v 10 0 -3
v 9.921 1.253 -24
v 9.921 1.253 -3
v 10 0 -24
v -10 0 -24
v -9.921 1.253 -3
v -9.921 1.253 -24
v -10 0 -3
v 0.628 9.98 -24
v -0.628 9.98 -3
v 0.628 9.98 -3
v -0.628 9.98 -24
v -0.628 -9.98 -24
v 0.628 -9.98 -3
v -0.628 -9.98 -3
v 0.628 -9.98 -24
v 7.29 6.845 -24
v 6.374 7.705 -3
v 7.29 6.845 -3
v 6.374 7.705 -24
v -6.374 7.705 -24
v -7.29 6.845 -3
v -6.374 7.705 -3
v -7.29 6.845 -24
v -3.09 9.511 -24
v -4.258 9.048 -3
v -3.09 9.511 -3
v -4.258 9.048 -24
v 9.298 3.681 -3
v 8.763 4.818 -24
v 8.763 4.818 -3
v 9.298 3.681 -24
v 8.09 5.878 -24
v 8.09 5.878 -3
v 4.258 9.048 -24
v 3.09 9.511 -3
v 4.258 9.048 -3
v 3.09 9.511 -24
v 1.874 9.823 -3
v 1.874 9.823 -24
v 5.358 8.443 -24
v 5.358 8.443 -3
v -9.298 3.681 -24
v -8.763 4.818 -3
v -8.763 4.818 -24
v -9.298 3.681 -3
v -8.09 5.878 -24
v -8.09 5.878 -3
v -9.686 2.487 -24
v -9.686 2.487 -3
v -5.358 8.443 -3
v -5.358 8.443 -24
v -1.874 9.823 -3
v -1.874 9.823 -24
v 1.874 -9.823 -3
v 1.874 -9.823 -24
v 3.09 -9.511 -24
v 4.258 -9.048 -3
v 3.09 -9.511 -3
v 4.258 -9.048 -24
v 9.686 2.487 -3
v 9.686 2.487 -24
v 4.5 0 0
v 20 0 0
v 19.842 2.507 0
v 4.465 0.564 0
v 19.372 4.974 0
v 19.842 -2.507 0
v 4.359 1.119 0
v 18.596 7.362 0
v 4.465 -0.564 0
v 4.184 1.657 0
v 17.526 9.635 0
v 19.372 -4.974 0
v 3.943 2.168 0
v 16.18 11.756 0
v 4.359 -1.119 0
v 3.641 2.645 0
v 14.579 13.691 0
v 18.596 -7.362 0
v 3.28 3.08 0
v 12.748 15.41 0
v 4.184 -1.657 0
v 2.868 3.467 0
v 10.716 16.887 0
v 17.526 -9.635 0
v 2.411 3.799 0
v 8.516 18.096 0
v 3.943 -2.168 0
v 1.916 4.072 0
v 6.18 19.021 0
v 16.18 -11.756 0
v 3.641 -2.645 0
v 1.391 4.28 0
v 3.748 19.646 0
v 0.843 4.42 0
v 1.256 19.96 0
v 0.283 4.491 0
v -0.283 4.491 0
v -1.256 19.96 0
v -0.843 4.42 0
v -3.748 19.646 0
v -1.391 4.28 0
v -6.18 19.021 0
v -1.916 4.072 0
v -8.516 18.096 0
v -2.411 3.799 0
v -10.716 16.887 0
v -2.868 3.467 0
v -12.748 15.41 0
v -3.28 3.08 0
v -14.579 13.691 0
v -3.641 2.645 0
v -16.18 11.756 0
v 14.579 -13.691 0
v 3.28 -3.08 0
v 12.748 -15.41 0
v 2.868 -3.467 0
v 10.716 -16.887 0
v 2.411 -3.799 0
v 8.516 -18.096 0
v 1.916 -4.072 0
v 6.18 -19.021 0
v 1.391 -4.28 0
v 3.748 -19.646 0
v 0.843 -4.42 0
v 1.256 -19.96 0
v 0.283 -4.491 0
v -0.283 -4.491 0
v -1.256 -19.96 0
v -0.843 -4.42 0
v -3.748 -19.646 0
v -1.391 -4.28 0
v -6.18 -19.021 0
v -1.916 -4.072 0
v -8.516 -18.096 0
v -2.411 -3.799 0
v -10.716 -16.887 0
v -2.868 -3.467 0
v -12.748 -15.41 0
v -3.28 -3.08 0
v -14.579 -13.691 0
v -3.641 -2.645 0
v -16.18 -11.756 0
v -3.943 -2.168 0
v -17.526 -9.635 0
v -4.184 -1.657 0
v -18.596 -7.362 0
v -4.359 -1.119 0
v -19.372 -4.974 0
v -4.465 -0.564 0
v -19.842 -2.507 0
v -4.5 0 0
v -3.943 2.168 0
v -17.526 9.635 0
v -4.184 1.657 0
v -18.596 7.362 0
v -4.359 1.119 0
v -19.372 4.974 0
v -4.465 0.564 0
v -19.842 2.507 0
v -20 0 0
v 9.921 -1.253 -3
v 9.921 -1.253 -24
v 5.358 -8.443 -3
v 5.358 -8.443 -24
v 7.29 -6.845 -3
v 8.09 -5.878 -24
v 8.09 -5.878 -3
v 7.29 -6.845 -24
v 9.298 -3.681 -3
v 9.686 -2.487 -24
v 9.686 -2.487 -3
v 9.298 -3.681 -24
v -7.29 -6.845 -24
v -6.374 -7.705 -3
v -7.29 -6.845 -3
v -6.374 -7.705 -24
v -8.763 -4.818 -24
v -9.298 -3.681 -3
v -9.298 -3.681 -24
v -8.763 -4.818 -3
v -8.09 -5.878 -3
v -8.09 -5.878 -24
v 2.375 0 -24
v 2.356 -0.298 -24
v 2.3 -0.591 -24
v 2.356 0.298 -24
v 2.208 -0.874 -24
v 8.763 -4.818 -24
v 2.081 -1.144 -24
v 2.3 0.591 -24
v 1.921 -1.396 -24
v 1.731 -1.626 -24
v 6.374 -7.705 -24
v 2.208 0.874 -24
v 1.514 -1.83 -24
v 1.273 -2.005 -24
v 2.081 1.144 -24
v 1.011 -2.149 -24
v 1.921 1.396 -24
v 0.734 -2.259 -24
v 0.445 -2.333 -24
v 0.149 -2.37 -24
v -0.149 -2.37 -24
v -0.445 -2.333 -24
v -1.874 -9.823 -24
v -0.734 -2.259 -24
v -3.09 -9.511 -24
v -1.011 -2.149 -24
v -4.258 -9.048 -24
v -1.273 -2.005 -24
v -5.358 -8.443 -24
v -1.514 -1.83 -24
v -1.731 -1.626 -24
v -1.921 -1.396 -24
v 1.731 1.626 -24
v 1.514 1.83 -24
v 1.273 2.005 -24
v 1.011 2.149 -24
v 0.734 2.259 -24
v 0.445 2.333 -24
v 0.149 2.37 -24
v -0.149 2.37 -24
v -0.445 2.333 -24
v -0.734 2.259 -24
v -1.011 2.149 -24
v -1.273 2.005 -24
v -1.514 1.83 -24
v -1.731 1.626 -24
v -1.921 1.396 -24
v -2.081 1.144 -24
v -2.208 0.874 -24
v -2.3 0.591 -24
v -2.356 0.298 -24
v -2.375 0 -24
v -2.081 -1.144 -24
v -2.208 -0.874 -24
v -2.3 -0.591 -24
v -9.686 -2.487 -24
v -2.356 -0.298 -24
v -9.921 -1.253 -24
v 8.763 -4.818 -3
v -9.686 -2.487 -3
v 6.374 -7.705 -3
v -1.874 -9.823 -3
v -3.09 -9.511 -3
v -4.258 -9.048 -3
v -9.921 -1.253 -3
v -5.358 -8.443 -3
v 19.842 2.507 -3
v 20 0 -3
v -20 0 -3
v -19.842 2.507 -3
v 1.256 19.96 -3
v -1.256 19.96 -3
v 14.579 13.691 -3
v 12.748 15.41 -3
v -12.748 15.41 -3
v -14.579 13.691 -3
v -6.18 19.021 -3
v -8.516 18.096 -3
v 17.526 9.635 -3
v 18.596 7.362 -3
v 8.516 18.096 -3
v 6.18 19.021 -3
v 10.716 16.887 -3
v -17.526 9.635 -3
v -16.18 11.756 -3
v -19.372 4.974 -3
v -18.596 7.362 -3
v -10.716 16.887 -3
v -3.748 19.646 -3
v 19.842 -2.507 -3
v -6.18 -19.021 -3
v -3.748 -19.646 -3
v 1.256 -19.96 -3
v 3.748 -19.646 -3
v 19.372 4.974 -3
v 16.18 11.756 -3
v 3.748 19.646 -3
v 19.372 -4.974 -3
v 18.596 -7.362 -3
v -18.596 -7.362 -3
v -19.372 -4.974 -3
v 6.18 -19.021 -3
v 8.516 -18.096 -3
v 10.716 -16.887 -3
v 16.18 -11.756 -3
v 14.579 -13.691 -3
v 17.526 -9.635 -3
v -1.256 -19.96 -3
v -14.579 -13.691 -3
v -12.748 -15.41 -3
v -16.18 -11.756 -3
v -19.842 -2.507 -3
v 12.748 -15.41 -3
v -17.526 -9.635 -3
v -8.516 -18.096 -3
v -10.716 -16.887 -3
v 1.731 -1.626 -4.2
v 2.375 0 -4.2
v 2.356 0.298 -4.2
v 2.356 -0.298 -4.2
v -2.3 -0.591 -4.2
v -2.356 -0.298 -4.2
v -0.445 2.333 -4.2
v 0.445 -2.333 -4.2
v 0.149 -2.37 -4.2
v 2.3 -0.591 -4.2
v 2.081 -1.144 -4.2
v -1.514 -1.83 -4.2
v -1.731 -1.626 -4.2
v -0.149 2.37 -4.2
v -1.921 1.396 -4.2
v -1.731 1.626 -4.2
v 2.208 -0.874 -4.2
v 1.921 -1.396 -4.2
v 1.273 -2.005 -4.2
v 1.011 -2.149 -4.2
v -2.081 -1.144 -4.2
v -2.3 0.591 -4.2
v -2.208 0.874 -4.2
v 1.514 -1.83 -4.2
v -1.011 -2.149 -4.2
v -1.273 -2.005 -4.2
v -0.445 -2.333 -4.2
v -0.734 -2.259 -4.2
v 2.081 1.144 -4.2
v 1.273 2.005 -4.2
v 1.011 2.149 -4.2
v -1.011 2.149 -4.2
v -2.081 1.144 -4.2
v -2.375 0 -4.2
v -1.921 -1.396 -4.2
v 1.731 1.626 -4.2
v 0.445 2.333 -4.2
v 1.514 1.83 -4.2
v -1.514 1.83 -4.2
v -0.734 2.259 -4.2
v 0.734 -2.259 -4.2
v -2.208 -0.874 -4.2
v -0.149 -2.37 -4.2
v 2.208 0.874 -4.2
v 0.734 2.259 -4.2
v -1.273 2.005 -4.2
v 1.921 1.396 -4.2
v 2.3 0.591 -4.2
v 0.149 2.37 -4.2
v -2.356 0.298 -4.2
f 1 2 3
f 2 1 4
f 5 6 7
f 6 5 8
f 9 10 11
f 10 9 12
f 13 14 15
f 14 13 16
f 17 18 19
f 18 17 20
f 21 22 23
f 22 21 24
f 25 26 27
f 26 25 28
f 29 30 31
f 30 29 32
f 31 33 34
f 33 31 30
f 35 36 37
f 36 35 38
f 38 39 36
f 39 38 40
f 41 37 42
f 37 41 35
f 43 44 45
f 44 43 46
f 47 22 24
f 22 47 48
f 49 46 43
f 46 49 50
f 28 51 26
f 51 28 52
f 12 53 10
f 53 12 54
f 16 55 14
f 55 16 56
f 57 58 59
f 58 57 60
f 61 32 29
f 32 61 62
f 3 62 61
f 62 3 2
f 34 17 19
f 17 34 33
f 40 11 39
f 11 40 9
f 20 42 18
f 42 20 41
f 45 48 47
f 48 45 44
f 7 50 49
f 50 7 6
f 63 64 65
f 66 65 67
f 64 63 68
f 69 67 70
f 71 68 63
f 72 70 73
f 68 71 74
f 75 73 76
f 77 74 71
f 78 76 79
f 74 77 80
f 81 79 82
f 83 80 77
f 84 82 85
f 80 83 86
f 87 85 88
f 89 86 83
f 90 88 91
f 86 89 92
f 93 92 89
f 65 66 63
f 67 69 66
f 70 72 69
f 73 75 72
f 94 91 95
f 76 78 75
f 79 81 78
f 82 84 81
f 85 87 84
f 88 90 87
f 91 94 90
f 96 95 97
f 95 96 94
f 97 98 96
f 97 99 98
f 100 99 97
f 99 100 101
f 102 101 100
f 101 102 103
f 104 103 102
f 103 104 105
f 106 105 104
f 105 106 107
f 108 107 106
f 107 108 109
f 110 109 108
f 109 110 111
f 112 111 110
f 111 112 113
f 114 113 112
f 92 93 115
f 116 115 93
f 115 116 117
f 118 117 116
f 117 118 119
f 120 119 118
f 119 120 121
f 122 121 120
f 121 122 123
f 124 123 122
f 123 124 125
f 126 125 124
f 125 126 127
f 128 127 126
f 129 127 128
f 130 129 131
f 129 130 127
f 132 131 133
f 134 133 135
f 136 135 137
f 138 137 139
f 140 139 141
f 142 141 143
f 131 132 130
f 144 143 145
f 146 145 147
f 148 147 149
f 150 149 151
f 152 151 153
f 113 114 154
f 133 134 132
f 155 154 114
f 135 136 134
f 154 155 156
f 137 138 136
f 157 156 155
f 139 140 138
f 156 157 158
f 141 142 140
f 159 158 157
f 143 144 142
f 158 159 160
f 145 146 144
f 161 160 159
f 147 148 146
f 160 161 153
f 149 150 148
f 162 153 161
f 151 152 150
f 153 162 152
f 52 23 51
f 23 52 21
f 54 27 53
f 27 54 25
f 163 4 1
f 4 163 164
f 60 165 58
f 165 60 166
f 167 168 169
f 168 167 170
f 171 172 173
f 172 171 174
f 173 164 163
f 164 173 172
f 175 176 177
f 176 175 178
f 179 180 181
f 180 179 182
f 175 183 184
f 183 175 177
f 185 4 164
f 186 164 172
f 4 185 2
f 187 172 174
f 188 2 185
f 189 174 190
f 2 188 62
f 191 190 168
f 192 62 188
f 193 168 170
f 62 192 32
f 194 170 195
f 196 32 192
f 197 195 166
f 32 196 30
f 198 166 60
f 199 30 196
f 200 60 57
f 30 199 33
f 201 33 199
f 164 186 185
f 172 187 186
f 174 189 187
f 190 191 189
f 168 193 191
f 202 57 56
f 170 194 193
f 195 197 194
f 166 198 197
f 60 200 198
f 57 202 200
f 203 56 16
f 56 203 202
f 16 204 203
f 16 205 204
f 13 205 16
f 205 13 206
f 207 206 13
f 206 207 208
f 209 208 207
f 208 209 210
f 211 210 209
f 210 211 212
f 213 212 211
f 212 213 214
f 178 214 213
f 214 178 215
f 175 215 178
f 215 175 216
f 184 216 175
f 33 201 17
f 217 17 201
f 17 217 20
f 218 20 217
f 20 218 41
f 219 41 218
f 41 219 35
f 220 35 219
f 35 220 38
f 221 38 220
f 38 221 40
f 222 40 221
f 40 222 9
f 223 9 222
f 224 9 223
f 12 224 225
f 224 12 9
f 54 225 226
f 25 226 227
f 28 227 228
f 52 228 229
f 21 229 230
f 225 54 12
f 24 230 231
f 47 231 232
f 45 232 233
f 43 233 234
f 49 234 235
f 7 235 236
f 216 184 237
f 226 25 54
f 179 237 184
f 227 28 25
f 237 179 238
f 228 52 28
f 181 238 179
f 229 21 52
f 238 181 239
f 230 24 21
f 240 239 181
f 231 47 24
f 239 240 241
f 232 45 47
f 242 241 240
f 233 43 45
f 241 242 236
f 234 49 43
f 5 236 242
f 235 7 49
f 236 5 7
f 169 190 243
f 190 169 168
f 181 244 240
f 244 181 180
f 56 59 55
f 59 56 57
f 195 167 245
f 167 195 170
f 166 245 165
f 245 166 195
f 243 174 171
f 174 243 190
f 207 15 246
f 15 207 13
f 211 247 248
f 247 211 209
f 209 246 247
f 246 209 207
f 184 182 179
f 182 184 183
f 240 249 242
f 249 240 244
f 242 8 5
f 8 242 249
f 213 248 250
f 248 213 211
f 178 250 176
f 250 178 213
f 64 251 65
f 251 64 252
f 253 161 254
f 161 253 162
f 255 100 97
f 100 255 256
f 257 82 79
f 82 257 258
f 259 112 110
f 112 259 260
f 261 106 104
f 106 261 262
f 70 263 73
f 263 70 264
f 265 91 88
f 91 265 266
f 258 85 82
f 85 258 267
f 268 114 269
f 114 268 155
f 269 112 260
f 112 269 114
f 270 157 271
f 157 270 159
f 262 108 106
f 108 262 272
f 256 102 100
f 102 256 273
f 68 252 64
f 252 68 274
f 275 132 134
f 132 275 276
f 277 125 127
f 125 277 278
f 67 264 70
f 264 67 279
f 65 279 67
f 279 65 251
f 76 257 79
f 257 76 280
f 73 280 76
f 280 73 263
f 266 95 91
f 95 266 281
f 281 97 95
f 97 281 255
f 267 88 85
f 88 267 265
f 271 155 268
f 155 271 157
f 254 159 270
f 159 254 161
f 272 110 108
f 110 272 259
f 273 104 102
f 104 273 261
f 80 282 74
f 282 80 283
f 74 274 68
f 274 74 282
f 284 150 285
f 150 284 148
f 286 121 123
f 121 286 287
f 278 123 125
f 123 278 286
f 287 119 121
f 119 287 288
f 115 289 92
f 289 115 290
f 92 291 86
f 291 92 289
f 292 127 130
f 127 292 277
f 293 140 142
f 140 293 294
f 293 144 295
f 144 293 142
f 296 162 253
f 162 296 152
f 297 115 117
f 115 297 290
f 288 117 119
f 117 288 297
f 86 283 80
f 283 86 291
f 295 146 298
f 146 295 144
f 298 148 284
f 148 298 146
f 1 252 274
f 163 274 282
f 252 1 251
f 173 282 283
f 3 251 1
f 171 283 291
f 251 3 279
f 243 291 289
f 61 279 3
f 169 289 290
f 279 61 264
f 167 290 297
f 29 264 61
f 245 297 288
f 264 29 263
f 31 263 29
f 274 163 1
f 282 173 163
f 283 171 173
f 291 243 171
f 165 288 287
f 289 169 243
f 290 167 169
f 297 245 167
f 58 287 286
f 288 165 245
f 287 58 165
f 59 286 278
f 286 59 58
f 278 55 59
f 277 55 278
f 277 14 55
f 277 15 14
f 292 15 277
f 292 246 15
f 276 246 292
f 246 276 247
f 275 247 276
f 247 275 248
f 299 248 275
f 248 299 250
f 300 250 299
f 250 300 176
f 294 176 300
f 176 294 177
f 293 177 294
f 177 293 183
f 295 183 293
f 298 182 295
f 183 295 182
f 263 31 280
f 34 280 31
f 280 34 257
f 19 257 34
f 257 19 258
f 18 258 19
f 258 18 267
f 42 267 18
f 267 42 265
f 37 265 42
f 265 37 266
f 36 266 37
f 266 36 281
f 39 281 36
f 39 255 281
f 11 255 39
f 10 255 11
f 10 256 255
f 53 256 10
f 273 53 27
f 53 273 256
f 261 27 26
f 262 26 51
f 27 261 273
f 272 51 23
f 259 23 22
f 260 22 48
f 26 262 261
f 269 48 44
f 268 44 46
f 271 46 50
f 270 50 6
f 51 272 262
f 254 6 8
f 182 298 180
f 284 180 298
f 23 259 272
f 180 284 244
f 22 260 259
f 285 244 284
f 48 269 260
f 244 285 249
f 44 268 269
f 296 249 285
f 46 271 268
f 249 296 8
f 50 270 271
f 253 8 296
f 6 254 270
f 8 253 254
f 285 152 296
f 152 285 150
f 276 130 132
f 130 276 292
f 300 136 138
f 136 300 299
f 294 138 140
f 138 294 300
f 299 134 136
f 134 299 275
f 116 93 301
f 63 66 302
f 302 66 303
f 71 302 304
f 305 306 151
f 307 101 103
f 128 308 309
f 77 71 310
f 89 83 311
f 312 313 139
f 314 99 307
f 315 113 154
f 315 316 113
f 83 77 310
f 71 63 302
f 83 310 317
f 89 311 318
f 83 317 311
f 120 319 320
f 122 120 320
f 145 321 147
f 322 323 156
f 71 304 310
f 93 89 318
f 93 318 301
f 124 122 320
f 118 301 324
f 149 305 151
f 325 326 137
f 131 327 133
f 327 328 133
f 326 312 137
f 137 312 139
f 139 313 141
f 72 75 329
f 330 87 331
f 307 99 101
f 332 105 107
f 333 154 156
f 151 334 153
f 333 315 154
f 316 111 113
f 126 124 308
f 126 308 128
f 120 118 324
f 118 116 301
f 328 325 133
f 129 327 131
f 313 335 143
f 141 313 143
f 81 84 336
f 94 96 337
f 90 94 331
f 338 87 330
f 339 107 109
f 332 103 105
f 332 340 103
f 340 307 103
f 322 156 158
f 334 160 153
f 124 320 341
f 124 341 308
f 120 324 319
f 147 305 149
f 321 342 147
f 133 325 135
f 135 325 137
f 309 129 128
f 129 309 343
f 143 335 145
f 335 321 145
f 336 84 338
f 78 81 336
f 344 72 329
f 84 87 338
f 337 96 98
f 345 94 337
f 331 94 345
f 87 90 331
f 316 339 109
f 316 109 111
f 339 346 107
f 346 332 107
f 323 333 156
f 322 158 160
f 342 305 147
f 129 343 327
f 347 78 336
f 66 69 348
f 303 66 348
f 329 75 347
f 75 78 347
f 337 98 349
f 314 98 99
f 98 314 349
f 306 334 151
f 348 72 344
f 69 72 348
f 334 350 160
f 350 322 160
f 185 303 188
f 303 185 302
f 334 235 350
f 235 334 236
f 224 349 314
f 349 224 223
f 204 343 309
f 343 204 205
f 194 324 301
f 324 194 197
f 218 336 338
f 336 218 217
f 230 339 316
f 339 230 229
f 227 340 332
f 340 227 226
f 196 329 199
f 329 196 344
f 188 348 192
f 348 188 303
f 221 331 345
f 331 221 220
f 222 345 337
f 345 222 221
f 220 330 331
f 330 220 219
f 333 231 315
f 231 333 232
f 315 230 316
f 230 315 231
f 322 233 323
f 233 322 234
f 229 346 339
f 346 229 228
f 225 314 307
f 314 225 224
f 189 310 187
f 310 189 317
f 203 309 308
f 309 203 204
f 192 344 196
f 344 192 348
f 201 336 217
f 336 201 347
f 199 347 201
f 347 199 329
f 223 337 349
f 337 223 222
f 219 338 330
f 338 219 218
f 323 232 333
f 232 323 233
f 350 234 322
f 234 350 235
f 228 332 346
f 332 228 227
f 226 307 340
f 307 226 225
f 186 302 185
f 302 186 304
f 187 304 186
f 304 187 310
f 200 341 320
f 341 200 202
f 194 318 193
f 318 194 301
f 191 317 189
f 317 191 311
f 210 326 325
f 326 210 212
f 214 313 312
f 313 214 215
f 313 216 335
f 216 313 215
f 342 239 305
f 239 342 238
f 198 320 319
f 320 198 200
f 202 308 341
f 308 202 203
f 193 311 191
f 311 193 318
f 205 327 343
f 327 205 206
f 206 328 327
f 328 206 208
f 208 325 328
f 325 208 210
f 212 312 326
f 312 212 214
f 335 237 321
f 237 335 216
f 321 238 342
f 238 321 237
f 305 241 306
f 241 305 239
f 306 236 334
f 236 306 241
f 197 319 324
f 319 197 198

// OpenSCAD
$fn = 50;


difference() {
	union() {
		translate(v = [0, 0, -24.0000000000]) {
			cylinder(h = 24, r = 10.0000000000);
		}
		translate(v = [0, 0, -3.0000000000]) {
			cylinder(h = 3, r = 20.0000000000);
		}
	}
	union() {
		translate(v = [0, 0, 0]) {
			rotate(a = [0, 0, 0]) {
				difference() {
					union() {
						#translate(v = [0, 0, -24.0000000000]) {
							cylinder(h = 24, r = 2.2500000000);
						}
						#translate(v = [0, 0, -4.2000000000]) {
							cylinder(h = 4.2000000000, r1 = 2.3750000000, r2 = 4.5000000000);
						}
						#translate(v = [0, 0, -24.0000000000]) {
							cylinder(h = 24, r = 2.3750000000);
						}
						#translate(v = [0, 0, -24.0000000000]) {
							cylinder(h = 24, r = 2.2500000000);
						}
					}
					union();
				}
			}
		}
	}
}
